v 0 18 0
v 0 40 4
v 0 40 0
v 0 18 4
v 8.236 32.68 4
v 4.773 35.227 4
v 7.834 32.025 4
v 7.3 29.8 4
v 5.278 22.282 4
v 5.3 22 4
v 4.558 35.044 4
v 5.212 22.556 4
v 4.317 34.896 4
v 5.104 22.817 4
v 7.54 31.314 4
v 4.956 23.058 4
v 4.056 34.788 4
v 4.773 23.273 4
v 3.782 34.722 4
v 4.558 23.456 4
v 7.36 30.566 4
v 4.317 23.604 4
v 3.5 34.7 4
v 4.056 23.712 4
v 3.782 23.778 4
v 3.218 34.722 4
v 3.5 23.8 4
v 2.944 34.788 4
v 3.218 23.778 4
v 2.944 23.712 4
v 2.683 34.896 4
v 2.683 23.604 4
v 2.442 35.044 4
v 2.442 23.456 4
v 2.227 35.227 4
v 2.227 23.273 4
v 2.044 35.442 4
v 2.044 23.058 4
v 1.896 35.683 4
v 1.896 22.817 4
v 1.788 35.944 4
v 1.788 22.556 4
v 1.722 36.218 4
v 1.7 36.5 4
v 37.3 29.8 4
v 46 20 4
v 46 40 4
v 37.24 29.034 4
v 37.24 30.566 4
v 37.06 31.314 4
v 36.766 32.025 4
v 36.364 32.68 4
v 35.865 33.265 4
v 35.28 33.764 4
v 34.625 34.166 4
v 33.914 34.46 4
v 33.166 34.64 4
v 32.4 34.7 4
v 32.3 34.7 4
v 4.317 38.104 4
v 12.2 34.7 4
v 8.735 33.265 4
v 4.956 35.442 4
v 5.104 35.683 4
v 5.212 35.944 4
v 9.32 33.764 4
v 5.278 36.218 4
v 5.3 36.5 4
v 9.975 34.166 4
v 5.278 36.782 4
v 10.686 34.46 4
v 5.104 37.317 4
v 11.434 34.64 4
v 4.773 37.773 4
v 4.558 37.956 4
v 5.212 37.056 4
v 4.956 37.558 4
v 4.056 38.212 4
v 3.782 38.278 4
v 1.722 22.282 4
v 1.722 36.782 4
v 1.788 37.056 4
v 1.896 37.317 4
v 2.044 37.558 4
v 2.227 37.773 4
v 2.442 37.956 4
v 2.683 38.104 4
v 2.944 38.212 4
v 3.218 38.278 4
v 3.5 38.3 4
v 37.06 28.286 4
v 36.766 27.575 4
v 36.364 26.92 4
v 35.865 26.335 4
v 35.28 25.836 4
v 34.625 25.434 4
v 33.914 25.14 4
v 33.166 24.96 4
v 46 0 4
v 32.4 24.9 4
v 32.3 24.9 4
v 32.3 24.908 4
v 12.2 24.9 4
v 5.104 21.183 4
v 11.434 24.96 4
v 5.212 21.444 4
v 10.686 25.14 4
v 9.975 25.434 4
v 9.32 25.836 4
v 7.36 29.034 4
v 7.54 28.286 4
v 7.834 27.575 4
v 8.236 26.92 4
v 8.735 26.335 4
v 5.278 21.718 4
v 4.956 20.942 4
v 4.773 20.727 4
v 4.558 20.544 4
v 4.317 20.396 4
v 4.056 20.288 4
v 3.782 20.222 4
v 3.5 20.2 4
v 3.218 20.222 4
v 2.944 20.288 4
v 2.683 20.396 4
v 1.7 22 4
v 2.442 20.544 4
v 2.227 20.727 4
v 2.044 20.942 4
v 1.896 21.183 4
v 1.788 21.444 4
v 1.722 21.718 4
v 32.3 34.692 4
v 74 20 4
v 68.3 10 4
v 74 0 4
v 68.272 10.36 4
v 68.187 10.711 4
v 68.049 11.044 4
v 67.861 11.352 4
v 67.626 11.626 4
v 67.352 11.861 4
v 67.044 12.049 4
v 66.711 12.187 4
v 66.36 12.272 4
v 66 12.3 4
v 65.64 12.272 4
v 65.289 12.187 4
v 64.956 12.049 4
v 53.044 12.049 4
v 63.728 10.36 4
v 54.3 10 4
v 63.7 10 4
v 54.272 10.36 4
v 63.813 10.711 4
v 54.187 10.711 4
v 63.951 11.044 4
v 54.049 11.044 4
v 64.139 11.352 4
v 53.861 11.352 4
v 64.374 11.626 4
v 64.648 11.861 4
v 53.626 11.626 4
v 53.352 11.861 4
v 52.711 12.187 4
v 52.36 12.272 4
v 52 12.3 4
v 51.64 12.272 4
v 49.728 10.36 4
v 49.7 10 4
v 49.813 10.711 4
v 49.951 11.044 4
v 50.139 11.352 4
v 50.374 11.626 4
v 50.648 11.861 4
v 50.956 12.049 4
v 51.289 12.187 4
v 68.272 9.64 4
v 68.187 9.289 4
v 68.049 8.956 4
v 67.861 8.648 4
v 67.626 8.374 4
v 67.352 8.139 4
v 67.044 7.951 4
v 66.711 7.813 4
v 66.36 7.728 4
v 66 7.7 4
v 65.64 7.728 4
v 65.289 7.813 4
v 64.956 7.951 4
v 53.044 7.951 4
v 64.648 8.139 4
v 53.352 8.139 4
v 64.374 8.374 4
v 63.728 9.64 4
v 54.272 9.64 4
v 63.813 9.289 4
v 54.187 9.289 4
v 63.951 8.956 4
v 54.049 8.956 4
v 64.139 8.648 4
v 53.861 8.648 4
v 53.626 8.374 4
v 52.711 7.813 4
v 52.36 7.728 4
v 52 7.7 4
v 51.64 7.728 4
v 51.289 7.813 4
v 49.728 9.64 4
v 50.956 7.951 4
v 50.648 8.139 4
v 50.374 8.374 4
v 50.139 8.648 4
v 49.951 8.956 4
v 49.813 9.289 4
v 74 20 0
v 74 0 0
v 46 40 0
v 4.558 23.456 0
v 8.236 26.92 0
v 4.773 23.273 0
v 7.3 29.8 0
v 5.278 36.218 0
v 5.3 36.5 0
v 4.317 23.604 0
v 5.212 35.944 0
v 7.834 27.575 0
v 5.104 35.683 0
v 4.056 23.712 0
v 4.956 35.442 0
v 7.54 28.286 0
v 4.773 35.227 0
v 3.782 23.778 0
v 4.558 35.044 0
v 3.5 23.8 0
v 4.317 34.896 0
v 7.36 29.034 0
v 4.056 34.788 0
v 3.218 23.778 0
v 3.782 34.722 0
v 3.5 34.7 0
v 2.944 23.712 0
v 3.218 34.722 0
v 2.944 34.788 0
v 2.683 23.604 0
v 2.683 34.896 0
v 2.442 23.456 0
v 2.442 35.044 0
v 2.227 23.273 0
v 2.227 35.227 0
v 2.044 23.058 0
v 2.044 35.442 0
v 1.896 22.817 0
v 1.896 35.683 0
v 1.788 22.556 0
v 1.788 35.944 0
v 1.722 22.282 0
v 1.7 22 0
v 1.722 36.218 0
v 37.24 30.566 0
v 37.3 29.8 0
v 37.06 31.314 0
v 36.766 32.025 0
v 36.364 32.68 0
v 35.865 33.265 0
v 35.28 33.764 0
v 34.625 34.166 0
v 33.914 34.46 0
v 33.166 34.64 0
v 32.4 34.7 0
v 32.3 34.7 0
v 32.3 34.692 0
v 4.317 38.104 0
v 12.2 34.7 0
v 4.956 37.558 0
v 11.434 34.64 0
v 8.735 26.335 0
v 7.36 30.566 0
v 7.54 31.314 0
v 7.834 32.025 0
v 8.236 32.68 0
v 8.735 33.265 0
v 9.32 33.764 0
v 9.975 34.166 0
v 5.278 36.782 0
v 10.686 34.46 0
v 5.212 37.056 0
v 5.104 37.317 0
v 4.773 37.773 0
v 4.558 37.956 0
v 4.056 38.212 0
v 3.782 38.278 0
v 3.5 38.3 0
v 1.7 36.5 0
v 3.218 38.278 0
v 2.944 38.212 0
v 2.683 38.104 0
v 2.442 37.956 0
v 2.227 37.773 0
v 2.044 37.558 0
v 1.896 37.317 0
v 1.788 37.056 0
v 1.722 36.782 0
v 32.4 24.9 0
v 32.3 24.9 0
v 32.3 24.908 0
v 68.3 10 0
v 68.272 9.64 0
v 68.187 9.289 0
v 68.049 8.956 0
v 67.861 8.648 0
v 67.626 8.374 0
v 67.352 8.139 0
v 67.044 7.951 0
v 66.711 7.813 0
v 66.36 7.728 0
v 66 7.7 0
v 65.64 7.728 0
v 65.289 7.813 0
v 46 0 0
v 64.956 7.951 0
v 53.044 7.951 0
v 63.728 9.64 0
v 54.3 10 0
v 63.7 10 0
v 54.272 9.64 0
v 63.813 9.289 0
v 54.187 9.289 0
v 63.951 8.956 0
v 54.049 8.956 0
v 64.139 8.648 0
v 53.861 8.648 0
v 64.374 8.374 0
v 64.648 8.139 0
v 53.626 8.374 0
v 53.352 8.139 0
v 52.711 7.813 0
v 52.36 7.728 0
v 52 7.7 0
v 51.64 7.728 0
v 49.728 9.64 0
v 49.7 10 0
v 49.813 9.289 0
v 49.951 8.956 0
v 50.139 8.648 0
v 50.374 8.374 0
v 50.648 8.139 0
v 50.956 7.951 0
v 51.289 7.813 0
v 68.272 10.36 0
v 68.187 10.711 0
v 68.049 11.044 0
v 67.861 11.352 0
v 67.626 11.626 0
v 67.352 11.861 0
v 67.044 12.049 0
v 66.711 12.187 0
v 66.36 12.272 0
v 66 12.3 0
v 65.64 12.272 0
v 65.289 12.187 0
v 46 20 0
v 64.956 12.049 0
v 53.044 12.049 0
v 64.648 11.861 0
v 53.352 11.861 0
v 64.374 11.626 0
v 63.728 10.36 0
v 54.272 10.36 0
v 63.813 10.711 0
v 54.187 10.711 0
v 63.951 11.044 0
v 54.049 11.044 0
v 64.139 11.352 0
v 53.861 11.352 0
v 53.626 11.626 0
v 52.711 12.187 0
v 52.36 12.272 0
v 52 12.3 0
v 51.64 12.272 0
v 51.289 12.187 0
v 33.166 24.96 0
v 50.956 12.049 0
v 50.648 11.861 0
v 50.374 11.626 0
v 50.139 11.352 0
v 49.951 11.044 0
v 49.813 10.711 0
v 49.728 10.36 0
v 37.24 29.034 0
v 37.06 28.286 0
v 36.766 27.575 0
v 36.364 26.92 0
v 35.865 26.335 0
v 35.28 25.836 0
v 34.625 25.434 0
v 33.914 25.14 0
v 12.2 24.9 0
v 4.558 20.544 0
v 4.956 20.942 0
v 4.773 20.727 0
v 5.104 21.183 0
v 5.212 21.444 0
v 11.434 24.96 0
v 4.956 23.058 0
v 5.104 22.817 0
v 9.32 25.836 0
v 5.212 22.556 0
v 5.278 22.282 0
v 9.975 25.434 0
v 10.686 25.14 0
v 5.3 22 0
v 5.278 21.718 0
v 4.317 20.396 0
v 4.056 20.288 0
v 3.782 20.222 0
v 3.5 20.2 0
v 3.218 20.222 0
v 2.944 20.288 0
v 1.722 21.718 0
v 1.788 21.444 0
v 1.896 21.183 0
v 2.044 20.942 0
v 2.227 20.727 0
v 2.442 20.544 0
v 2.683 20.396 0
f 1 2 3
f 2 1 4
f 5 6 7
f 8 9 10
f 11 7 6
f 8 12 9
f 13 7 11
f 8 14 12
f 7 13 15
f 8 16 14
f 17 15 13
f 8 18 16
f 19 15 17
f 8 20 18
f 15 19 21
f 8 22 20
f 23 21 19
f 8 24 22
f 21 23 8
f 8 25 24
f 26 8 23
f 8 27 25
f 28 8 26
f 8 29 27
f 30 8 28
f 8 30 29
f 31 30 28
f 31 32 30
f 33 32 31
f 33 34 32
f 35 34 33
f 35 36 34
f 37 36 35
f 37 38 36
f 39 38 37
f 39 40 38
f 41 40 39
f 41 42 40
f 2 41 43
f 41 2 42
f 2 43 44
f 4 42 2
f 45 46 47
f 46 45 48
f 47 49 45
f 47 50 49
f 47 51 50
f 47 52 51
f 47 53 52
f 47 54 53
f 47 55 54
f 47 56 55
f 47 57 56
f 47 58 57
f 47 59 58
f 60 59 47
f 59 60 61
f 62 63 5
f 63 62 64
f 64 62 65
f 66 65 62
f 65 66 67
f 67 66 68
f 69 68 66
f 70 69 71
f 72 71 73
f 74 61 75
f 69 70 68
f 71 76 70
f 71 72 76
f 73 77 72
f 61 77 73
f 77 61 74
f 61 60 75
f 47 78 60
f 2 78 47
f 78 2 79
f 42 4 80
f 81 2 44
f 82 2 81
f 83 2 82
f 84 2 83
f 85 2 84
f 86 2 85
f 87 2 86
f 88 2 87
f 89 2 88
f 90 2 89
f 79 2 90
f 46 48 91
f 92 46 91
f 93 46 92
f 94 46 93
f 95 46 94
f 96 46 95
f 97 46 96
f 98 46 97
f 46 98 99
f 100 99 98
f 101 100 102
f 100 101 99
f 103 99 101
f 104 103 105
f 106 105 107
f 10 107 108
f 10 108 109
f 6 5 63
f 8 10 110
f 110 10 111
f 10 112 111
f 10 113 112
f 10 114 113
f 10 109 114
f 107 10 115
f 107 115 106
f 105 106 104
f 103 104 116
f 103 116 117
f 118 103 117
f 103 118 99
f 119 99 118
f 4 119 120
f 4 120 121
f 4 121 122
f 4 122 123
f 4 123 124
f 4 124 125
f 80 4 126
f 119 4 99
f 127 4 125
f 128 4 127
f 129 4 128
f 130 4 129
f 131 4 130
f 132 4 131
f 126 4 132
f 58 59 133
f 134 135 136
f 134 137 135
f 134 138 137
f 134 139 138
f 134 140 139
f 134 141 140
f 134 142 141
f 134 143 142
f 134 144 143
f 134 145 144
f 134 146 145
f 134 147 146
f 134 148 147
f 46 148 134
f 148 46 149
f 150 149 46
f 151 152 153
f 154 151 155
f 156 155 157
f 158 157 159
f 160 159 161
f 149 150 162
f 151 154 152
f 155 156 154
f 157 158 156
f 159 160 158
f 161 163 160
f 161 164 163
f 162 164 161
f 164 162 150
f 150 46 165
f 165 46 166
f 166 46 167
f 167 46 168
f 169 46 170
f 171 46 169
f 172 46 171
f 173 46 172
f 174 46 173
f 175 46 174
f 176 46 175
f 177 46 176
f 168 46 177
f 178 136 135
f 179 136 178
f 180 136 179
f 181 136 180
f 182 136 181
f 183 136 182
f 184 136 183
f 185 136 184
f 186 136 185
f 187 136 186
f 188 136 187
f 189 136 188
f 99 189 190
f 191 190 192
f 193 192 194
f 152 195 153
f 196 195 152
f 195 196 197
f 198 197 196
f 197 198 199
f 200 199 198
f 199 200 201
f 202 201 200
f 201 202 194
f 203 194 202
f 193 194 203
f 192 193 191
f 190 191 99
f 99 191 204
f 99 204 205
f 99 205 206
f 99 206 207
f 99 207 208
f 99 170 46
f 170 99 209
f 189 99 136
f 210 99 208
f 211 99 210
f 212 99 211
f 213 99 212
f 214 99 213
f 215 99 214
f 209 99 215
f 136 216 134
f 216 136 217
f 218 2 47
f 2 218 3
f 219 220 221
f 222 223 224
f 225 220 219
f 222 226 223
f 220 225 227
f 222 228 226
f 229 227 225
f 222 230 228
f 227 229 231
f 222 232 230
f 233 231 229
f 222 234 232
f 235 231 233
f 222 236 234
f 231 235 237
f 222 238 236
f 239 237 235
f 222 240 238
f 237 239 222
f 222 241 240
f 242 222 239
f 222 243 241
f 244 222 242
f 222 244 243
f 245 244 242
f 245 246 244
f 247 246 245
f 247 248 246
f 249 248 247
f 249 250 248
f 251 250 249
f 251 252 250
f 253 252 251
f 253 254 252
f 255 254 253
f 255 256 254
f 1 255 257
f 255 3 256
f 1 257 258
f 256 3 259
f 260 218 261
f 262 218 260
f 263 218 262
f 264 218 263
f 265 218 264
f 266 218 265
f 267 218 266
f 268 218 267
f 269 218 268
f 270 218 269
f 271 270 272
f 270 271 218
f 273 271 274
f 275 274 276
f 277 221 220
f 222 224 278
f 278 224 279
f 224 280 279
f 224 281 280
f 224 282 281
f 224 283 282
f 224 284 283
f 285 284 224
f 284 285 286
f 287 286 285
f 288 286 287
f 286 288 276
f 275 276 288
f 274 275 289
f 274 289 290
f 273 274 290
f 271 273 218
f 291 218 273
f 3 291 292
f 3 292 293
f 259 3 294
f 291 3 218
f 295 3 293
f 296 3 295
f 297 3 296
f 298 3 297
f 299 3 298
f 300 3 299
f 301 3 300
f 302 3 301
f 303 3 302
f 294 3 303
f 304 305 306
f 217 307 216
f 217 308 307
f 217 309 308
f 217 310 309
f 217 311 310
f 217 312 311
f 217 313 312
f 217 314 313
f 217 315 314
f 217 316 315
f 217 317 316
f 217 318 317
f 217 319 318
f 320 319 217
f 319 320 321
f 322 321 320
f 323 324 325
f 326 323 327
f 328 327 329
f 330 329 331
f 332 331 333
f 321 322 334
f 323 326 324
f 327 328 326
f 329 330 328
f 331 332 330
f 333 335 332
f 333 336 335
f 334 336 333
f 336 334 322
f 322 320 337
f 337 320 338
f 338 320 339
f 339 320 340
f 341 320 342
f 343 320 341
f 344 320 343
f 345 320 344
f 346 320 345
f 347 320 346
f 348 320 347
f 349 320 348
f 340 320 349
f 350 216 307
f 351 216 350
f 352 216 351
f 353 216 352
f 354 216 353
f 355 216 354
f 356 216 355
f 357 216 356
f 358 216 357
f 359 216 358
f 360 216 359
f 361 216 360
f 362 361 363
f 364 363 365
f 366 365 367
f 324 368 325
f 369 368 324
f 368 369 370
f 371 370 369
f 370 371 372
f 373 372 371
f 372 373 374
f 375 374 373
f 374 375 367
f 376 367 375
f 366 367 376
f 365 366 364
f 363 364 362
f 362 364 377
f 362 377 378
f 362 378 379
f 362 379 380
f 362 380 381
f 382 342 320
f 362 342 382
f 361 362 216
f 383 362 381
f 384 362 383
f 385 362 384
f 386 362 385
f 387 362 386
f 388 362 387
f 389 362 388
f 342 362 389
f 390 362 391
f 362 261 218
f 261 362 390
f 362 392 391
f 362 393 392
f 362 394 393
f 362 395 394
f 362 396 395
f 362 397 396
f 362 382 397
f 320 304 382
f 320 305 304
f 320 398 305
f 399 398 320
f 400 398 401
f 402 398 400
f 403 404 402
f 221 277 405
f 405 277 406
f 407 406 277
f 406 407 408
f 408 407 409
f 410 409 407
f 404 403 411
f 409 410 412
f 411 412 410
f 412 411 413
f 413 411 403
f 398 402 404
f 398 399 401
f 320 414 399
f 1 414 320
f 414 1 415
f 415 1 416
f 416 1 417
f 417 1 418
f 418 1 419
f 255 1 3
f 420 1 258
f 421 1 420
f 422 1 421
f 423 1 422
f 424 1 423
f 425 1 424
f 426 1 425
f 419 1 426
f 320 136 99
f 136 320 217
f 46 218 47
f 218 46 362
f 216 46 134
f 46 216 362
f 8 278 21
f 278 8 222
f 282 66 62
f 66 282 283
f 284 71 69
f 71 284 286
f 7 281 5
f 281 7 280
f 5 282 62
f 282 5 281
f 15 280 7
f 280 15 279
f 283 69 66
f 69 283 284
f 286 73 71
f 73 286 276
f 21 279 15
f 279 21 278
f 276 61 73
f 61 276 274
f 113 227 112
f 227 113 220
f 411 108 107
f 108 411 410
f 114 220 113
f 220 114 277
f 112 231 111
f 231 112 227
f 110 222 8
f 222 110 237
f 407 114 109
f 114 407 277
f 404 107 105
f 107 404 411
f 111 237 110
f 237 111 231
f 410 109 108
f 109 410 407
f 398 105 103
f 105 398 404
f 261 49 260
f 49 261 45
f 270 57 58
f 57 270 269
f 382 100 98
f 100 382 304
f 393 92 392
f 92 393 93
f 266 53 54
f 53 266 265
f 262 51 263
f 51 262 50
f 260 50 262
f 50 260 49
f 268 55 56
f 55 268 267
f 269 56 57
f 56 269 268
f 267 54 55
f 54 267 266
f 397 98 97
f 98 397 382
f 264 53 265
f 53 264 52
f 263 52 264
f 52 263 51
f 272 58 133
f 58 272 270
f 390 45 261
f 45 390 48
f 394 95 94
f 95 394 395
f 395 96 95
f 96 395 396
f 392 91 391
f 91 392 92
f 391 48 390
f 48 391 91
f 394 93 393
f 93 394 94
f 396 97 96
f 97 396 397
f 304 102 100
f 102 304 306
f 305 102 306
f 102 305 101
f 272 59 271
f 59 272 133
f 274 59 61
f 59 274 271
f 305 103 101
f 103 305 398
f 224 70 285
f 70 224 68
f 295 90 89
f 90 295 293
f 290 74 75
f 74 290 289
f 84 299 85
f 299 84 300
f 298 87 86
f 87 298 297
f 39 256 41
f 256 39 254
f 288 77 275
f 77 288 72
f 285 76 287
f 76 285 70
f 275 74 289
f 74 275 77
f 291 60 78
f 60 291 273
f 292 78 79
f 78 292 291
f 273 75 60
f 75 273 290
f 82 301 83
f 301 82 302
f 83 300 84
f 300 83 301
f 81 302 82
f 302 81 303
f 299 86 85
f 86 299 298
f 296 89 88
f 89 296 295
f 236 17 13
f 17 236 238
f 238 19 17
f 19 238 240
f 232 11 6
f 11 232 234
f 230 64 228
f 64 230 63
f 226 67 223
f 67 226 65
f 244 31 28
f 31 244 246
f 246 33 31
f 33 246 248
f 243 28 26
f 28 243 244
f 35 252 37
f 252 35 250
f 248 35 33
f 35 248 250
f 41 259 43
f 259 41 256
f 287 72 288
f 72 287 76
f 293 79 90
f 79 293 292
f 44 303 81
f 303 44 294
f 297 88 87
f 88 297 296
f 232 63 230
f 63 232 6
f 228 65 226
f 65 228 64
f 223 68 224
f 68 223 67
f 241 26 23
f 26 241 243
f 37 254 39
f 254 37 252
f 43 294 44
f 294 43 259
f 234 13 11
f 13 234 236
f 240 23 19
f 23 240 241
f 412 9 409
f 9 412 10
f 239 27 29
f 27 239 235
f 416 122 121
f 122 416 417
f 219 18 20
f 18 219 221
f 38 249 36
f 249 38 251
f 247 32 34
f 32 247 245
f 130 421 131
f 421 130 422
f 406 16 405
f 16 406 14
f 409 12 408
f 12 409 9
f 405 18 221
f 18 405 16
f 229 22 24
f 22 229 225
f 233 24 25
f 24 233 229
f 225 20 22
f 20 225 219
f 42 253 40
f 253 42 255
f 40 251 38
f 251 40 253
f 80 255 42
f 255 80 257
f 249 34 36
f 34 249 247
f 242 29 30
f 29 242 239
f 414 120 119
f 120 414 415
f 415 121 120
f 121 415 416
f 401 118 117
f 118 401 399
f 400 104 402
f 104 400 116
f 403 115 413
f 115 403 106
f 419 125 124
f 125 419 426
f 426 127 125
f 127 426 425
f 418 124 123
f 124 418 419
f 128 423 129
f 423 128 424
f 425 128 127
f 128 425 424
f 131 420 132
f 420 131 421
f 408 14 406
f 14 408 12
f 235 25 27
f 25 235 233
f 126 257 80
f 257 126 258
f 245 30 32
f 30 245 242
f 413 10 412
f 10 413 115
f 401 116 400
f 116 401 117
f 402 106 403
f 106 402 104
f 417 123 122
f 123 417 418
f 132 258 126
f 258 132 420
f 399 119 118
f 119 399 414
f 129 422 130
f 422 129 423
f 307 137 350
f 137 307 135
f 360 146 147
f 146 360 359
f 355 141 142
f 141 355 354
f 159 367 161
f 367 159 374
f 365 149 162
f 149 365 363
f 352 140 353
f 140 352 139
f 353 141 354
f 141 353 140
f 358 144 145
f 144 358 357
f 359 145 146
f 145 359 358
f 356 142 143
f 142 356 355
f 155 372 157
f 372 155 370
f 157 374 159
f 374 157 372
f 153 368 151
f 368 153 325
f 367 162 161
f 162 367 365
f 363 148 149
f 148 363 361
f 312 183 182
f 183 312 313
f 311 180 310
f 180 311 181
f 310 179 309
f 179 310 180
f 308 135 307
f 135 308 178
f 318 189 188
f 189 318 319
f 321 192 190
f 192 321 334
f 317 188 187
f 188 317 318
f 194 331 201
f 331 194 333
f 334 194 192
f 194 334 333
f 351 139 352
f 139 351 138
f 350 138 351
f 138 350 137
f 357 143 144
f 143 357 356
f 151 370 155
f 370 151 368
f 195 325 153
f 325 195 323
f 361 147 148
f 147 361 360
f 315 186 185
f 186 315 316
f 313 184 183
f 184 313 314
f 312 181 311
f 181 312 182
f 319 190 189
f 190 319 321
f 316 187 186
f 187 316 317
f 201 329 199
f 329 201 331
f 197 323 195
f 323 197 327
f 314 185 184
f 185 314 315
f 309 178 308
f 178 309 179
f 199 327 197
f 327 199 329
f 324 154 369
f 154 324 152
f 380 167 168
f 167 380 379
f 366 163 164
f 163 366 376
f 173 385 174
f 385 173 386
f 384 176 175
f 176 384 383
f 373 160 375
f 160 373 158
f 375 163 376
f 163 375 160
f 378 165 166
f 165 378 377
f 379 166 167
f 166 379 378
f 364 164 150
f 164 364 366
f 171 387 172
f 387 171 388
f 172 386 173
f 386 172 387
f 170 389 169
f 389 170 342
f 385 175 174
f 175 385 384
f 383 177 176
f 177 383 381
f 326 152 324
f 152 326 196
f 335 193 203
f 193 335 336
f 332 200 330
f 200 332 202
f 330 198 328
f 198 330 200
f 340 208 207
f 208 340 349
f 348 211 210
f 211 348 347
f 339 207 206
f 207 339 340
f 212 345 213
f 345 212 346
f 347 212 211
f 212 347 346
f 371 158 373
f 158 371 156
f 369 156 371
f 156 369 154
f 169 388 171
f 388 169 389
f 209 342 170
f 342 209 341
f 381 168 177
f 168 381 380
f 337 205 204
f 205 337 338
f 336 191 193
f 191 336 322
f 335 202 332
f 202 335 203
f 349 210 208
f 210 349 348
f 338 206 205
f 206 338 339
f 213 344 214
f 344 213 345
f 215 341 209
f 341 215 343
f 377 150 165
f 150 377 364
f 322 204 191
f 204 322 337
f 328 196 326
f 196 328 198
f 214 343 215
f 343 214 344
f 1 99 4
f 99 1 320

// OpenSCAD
//To replace one side of this tensioner https://www.aliexpress.com/item/4000056015276.html
//and make it more like this one https://www.aliexpress.com/item/32993306070.html
//so that the Y carriage roller can travel the full length of the extrusion without hitting the bracket

//All dimensions in MM

//Fudge factor for hole sizes to accomodate printer/filament tolerance
fudge = 0.6;

//Dimensions for bracket
length = 74;
height = 40;
thickness = 4;

//Dimensions for notch to allow v-wheel to clear
nlength = 28; 
nheight = 20;

//Pulley slot dimensions
pheight     = 9.2 + fudge;
prad        = pheight/2;
pfromleft   = 7.3;
pfromtop    = 5.3;
pslotlength = 27.5;

//Tensioner screw holes (M3)
tensioner_screw_hole_diameter              = 3 + fudge;
tensioner_screw_hole_center_dist_from_edge = 3.5;
tensioner_screw_hole_center_dist_from_mid = 2;

//T-Nut screw holes (M4)
tnut_screw_hole_diameter     = 4 + fudge;
right_tnut_offset_from_right = 8;
left_tnut_offset_from_right  = 22;

//Facet constant for hole roundness
facets = 40;

//Constant for 10mm centering of T-Nut screw holes for 2020 extrusion
2020_tnut_height = 10;

//Thanks to https://github.com/openscad/MCAD/blob/master/triangles.scad
module triangle(o_len, a_len, depth, center=false)
{
    centroid = center ? [-a_len/3, -o_len/3, -depth/2] : [0, 0, 0];
    translate(centroid) linear_extrude(height=depth)
    {
        polygon(points=[[0,0],[a_len,0],[0,o_len]], paths=[[0,1,2]]);
    }
}

//The bracket with the notch subtracted from it
difference()
{
    //Main bracket shape
    cube([length,height,thickness], center = false);
    
    //Move notch to correct place
    translate([(length-nlength),(height-nheight),0]){
        //Notch shape
        cube([nlength,nheight,thickness], center = false);
    }
    
    //Move left pulley hole to correct place
    translate([(prad + pfromleft),(height-pfromtop-prad),0]){
        //left pulley hole
        cylinder(h = thickness, d = pheight , center = false, $fn=facets);
    }
    
    //Move right pulley hole to correct place
    translate([(prad + pslotlength),(height-pfromtop-prad),0]){
        //right pulley hole
        cylinder(h = thickness, d = pheight , center = false, $fn=facets);
    }
    
    //Move pulley rectangle to correct place
    translate([(prad + pfromleft),(height-pfromtop-pheight),0]){
        //pulley rectangle between pulley holes
        cube([(pslotlength-pheight+pfromleft-prad),pheight,thickness], center = false);
    }
    
    //Move upper tensioner screw hole to correct place
    translate([(tensioner_screw_hole_center_dist_from_edge),(height-tensioner_screw_hole_center_dist_from_edge),0]){
        //upper tensioner screw hole
        cylinder(h = thickness, d = tensioner_screw_hole_diameter , center = false, $fn=facets);
    }
    
    //Move lower tensioner screw hole to correct place
    translate([(tensioner_screw_hole_center_dist_from_edge),(height/2 + tensioner_screw_hole_center_dist_from_mid),0]){
        //lower tensioner screw hole
        cylinder(h = thickness, d = tensioner_screw_hole_diameter , center = false, $fn=facets);
    }
    
    //Move right tnut screw hole to correct place
    translate([(length - right_tnut_offset_from_right),2020_tnut_height,0]){
        //right tnut screw hole
        cylinder(h = thickness, d = tnut_screw_hole_diameter , center = false, $fn=facets);
    }
    
    //Move left tnut screw hole to correct place
    translate([(length - left_tnut_offset_from_right),2020_tnut_height,0]){
        //left tnut screw hole
        cylinder(h = thickness, d = tnut_screw_hole_diameter , center = false, $fn=facets);
    }    
    
    triangle(18,length-nlength,4);
}
